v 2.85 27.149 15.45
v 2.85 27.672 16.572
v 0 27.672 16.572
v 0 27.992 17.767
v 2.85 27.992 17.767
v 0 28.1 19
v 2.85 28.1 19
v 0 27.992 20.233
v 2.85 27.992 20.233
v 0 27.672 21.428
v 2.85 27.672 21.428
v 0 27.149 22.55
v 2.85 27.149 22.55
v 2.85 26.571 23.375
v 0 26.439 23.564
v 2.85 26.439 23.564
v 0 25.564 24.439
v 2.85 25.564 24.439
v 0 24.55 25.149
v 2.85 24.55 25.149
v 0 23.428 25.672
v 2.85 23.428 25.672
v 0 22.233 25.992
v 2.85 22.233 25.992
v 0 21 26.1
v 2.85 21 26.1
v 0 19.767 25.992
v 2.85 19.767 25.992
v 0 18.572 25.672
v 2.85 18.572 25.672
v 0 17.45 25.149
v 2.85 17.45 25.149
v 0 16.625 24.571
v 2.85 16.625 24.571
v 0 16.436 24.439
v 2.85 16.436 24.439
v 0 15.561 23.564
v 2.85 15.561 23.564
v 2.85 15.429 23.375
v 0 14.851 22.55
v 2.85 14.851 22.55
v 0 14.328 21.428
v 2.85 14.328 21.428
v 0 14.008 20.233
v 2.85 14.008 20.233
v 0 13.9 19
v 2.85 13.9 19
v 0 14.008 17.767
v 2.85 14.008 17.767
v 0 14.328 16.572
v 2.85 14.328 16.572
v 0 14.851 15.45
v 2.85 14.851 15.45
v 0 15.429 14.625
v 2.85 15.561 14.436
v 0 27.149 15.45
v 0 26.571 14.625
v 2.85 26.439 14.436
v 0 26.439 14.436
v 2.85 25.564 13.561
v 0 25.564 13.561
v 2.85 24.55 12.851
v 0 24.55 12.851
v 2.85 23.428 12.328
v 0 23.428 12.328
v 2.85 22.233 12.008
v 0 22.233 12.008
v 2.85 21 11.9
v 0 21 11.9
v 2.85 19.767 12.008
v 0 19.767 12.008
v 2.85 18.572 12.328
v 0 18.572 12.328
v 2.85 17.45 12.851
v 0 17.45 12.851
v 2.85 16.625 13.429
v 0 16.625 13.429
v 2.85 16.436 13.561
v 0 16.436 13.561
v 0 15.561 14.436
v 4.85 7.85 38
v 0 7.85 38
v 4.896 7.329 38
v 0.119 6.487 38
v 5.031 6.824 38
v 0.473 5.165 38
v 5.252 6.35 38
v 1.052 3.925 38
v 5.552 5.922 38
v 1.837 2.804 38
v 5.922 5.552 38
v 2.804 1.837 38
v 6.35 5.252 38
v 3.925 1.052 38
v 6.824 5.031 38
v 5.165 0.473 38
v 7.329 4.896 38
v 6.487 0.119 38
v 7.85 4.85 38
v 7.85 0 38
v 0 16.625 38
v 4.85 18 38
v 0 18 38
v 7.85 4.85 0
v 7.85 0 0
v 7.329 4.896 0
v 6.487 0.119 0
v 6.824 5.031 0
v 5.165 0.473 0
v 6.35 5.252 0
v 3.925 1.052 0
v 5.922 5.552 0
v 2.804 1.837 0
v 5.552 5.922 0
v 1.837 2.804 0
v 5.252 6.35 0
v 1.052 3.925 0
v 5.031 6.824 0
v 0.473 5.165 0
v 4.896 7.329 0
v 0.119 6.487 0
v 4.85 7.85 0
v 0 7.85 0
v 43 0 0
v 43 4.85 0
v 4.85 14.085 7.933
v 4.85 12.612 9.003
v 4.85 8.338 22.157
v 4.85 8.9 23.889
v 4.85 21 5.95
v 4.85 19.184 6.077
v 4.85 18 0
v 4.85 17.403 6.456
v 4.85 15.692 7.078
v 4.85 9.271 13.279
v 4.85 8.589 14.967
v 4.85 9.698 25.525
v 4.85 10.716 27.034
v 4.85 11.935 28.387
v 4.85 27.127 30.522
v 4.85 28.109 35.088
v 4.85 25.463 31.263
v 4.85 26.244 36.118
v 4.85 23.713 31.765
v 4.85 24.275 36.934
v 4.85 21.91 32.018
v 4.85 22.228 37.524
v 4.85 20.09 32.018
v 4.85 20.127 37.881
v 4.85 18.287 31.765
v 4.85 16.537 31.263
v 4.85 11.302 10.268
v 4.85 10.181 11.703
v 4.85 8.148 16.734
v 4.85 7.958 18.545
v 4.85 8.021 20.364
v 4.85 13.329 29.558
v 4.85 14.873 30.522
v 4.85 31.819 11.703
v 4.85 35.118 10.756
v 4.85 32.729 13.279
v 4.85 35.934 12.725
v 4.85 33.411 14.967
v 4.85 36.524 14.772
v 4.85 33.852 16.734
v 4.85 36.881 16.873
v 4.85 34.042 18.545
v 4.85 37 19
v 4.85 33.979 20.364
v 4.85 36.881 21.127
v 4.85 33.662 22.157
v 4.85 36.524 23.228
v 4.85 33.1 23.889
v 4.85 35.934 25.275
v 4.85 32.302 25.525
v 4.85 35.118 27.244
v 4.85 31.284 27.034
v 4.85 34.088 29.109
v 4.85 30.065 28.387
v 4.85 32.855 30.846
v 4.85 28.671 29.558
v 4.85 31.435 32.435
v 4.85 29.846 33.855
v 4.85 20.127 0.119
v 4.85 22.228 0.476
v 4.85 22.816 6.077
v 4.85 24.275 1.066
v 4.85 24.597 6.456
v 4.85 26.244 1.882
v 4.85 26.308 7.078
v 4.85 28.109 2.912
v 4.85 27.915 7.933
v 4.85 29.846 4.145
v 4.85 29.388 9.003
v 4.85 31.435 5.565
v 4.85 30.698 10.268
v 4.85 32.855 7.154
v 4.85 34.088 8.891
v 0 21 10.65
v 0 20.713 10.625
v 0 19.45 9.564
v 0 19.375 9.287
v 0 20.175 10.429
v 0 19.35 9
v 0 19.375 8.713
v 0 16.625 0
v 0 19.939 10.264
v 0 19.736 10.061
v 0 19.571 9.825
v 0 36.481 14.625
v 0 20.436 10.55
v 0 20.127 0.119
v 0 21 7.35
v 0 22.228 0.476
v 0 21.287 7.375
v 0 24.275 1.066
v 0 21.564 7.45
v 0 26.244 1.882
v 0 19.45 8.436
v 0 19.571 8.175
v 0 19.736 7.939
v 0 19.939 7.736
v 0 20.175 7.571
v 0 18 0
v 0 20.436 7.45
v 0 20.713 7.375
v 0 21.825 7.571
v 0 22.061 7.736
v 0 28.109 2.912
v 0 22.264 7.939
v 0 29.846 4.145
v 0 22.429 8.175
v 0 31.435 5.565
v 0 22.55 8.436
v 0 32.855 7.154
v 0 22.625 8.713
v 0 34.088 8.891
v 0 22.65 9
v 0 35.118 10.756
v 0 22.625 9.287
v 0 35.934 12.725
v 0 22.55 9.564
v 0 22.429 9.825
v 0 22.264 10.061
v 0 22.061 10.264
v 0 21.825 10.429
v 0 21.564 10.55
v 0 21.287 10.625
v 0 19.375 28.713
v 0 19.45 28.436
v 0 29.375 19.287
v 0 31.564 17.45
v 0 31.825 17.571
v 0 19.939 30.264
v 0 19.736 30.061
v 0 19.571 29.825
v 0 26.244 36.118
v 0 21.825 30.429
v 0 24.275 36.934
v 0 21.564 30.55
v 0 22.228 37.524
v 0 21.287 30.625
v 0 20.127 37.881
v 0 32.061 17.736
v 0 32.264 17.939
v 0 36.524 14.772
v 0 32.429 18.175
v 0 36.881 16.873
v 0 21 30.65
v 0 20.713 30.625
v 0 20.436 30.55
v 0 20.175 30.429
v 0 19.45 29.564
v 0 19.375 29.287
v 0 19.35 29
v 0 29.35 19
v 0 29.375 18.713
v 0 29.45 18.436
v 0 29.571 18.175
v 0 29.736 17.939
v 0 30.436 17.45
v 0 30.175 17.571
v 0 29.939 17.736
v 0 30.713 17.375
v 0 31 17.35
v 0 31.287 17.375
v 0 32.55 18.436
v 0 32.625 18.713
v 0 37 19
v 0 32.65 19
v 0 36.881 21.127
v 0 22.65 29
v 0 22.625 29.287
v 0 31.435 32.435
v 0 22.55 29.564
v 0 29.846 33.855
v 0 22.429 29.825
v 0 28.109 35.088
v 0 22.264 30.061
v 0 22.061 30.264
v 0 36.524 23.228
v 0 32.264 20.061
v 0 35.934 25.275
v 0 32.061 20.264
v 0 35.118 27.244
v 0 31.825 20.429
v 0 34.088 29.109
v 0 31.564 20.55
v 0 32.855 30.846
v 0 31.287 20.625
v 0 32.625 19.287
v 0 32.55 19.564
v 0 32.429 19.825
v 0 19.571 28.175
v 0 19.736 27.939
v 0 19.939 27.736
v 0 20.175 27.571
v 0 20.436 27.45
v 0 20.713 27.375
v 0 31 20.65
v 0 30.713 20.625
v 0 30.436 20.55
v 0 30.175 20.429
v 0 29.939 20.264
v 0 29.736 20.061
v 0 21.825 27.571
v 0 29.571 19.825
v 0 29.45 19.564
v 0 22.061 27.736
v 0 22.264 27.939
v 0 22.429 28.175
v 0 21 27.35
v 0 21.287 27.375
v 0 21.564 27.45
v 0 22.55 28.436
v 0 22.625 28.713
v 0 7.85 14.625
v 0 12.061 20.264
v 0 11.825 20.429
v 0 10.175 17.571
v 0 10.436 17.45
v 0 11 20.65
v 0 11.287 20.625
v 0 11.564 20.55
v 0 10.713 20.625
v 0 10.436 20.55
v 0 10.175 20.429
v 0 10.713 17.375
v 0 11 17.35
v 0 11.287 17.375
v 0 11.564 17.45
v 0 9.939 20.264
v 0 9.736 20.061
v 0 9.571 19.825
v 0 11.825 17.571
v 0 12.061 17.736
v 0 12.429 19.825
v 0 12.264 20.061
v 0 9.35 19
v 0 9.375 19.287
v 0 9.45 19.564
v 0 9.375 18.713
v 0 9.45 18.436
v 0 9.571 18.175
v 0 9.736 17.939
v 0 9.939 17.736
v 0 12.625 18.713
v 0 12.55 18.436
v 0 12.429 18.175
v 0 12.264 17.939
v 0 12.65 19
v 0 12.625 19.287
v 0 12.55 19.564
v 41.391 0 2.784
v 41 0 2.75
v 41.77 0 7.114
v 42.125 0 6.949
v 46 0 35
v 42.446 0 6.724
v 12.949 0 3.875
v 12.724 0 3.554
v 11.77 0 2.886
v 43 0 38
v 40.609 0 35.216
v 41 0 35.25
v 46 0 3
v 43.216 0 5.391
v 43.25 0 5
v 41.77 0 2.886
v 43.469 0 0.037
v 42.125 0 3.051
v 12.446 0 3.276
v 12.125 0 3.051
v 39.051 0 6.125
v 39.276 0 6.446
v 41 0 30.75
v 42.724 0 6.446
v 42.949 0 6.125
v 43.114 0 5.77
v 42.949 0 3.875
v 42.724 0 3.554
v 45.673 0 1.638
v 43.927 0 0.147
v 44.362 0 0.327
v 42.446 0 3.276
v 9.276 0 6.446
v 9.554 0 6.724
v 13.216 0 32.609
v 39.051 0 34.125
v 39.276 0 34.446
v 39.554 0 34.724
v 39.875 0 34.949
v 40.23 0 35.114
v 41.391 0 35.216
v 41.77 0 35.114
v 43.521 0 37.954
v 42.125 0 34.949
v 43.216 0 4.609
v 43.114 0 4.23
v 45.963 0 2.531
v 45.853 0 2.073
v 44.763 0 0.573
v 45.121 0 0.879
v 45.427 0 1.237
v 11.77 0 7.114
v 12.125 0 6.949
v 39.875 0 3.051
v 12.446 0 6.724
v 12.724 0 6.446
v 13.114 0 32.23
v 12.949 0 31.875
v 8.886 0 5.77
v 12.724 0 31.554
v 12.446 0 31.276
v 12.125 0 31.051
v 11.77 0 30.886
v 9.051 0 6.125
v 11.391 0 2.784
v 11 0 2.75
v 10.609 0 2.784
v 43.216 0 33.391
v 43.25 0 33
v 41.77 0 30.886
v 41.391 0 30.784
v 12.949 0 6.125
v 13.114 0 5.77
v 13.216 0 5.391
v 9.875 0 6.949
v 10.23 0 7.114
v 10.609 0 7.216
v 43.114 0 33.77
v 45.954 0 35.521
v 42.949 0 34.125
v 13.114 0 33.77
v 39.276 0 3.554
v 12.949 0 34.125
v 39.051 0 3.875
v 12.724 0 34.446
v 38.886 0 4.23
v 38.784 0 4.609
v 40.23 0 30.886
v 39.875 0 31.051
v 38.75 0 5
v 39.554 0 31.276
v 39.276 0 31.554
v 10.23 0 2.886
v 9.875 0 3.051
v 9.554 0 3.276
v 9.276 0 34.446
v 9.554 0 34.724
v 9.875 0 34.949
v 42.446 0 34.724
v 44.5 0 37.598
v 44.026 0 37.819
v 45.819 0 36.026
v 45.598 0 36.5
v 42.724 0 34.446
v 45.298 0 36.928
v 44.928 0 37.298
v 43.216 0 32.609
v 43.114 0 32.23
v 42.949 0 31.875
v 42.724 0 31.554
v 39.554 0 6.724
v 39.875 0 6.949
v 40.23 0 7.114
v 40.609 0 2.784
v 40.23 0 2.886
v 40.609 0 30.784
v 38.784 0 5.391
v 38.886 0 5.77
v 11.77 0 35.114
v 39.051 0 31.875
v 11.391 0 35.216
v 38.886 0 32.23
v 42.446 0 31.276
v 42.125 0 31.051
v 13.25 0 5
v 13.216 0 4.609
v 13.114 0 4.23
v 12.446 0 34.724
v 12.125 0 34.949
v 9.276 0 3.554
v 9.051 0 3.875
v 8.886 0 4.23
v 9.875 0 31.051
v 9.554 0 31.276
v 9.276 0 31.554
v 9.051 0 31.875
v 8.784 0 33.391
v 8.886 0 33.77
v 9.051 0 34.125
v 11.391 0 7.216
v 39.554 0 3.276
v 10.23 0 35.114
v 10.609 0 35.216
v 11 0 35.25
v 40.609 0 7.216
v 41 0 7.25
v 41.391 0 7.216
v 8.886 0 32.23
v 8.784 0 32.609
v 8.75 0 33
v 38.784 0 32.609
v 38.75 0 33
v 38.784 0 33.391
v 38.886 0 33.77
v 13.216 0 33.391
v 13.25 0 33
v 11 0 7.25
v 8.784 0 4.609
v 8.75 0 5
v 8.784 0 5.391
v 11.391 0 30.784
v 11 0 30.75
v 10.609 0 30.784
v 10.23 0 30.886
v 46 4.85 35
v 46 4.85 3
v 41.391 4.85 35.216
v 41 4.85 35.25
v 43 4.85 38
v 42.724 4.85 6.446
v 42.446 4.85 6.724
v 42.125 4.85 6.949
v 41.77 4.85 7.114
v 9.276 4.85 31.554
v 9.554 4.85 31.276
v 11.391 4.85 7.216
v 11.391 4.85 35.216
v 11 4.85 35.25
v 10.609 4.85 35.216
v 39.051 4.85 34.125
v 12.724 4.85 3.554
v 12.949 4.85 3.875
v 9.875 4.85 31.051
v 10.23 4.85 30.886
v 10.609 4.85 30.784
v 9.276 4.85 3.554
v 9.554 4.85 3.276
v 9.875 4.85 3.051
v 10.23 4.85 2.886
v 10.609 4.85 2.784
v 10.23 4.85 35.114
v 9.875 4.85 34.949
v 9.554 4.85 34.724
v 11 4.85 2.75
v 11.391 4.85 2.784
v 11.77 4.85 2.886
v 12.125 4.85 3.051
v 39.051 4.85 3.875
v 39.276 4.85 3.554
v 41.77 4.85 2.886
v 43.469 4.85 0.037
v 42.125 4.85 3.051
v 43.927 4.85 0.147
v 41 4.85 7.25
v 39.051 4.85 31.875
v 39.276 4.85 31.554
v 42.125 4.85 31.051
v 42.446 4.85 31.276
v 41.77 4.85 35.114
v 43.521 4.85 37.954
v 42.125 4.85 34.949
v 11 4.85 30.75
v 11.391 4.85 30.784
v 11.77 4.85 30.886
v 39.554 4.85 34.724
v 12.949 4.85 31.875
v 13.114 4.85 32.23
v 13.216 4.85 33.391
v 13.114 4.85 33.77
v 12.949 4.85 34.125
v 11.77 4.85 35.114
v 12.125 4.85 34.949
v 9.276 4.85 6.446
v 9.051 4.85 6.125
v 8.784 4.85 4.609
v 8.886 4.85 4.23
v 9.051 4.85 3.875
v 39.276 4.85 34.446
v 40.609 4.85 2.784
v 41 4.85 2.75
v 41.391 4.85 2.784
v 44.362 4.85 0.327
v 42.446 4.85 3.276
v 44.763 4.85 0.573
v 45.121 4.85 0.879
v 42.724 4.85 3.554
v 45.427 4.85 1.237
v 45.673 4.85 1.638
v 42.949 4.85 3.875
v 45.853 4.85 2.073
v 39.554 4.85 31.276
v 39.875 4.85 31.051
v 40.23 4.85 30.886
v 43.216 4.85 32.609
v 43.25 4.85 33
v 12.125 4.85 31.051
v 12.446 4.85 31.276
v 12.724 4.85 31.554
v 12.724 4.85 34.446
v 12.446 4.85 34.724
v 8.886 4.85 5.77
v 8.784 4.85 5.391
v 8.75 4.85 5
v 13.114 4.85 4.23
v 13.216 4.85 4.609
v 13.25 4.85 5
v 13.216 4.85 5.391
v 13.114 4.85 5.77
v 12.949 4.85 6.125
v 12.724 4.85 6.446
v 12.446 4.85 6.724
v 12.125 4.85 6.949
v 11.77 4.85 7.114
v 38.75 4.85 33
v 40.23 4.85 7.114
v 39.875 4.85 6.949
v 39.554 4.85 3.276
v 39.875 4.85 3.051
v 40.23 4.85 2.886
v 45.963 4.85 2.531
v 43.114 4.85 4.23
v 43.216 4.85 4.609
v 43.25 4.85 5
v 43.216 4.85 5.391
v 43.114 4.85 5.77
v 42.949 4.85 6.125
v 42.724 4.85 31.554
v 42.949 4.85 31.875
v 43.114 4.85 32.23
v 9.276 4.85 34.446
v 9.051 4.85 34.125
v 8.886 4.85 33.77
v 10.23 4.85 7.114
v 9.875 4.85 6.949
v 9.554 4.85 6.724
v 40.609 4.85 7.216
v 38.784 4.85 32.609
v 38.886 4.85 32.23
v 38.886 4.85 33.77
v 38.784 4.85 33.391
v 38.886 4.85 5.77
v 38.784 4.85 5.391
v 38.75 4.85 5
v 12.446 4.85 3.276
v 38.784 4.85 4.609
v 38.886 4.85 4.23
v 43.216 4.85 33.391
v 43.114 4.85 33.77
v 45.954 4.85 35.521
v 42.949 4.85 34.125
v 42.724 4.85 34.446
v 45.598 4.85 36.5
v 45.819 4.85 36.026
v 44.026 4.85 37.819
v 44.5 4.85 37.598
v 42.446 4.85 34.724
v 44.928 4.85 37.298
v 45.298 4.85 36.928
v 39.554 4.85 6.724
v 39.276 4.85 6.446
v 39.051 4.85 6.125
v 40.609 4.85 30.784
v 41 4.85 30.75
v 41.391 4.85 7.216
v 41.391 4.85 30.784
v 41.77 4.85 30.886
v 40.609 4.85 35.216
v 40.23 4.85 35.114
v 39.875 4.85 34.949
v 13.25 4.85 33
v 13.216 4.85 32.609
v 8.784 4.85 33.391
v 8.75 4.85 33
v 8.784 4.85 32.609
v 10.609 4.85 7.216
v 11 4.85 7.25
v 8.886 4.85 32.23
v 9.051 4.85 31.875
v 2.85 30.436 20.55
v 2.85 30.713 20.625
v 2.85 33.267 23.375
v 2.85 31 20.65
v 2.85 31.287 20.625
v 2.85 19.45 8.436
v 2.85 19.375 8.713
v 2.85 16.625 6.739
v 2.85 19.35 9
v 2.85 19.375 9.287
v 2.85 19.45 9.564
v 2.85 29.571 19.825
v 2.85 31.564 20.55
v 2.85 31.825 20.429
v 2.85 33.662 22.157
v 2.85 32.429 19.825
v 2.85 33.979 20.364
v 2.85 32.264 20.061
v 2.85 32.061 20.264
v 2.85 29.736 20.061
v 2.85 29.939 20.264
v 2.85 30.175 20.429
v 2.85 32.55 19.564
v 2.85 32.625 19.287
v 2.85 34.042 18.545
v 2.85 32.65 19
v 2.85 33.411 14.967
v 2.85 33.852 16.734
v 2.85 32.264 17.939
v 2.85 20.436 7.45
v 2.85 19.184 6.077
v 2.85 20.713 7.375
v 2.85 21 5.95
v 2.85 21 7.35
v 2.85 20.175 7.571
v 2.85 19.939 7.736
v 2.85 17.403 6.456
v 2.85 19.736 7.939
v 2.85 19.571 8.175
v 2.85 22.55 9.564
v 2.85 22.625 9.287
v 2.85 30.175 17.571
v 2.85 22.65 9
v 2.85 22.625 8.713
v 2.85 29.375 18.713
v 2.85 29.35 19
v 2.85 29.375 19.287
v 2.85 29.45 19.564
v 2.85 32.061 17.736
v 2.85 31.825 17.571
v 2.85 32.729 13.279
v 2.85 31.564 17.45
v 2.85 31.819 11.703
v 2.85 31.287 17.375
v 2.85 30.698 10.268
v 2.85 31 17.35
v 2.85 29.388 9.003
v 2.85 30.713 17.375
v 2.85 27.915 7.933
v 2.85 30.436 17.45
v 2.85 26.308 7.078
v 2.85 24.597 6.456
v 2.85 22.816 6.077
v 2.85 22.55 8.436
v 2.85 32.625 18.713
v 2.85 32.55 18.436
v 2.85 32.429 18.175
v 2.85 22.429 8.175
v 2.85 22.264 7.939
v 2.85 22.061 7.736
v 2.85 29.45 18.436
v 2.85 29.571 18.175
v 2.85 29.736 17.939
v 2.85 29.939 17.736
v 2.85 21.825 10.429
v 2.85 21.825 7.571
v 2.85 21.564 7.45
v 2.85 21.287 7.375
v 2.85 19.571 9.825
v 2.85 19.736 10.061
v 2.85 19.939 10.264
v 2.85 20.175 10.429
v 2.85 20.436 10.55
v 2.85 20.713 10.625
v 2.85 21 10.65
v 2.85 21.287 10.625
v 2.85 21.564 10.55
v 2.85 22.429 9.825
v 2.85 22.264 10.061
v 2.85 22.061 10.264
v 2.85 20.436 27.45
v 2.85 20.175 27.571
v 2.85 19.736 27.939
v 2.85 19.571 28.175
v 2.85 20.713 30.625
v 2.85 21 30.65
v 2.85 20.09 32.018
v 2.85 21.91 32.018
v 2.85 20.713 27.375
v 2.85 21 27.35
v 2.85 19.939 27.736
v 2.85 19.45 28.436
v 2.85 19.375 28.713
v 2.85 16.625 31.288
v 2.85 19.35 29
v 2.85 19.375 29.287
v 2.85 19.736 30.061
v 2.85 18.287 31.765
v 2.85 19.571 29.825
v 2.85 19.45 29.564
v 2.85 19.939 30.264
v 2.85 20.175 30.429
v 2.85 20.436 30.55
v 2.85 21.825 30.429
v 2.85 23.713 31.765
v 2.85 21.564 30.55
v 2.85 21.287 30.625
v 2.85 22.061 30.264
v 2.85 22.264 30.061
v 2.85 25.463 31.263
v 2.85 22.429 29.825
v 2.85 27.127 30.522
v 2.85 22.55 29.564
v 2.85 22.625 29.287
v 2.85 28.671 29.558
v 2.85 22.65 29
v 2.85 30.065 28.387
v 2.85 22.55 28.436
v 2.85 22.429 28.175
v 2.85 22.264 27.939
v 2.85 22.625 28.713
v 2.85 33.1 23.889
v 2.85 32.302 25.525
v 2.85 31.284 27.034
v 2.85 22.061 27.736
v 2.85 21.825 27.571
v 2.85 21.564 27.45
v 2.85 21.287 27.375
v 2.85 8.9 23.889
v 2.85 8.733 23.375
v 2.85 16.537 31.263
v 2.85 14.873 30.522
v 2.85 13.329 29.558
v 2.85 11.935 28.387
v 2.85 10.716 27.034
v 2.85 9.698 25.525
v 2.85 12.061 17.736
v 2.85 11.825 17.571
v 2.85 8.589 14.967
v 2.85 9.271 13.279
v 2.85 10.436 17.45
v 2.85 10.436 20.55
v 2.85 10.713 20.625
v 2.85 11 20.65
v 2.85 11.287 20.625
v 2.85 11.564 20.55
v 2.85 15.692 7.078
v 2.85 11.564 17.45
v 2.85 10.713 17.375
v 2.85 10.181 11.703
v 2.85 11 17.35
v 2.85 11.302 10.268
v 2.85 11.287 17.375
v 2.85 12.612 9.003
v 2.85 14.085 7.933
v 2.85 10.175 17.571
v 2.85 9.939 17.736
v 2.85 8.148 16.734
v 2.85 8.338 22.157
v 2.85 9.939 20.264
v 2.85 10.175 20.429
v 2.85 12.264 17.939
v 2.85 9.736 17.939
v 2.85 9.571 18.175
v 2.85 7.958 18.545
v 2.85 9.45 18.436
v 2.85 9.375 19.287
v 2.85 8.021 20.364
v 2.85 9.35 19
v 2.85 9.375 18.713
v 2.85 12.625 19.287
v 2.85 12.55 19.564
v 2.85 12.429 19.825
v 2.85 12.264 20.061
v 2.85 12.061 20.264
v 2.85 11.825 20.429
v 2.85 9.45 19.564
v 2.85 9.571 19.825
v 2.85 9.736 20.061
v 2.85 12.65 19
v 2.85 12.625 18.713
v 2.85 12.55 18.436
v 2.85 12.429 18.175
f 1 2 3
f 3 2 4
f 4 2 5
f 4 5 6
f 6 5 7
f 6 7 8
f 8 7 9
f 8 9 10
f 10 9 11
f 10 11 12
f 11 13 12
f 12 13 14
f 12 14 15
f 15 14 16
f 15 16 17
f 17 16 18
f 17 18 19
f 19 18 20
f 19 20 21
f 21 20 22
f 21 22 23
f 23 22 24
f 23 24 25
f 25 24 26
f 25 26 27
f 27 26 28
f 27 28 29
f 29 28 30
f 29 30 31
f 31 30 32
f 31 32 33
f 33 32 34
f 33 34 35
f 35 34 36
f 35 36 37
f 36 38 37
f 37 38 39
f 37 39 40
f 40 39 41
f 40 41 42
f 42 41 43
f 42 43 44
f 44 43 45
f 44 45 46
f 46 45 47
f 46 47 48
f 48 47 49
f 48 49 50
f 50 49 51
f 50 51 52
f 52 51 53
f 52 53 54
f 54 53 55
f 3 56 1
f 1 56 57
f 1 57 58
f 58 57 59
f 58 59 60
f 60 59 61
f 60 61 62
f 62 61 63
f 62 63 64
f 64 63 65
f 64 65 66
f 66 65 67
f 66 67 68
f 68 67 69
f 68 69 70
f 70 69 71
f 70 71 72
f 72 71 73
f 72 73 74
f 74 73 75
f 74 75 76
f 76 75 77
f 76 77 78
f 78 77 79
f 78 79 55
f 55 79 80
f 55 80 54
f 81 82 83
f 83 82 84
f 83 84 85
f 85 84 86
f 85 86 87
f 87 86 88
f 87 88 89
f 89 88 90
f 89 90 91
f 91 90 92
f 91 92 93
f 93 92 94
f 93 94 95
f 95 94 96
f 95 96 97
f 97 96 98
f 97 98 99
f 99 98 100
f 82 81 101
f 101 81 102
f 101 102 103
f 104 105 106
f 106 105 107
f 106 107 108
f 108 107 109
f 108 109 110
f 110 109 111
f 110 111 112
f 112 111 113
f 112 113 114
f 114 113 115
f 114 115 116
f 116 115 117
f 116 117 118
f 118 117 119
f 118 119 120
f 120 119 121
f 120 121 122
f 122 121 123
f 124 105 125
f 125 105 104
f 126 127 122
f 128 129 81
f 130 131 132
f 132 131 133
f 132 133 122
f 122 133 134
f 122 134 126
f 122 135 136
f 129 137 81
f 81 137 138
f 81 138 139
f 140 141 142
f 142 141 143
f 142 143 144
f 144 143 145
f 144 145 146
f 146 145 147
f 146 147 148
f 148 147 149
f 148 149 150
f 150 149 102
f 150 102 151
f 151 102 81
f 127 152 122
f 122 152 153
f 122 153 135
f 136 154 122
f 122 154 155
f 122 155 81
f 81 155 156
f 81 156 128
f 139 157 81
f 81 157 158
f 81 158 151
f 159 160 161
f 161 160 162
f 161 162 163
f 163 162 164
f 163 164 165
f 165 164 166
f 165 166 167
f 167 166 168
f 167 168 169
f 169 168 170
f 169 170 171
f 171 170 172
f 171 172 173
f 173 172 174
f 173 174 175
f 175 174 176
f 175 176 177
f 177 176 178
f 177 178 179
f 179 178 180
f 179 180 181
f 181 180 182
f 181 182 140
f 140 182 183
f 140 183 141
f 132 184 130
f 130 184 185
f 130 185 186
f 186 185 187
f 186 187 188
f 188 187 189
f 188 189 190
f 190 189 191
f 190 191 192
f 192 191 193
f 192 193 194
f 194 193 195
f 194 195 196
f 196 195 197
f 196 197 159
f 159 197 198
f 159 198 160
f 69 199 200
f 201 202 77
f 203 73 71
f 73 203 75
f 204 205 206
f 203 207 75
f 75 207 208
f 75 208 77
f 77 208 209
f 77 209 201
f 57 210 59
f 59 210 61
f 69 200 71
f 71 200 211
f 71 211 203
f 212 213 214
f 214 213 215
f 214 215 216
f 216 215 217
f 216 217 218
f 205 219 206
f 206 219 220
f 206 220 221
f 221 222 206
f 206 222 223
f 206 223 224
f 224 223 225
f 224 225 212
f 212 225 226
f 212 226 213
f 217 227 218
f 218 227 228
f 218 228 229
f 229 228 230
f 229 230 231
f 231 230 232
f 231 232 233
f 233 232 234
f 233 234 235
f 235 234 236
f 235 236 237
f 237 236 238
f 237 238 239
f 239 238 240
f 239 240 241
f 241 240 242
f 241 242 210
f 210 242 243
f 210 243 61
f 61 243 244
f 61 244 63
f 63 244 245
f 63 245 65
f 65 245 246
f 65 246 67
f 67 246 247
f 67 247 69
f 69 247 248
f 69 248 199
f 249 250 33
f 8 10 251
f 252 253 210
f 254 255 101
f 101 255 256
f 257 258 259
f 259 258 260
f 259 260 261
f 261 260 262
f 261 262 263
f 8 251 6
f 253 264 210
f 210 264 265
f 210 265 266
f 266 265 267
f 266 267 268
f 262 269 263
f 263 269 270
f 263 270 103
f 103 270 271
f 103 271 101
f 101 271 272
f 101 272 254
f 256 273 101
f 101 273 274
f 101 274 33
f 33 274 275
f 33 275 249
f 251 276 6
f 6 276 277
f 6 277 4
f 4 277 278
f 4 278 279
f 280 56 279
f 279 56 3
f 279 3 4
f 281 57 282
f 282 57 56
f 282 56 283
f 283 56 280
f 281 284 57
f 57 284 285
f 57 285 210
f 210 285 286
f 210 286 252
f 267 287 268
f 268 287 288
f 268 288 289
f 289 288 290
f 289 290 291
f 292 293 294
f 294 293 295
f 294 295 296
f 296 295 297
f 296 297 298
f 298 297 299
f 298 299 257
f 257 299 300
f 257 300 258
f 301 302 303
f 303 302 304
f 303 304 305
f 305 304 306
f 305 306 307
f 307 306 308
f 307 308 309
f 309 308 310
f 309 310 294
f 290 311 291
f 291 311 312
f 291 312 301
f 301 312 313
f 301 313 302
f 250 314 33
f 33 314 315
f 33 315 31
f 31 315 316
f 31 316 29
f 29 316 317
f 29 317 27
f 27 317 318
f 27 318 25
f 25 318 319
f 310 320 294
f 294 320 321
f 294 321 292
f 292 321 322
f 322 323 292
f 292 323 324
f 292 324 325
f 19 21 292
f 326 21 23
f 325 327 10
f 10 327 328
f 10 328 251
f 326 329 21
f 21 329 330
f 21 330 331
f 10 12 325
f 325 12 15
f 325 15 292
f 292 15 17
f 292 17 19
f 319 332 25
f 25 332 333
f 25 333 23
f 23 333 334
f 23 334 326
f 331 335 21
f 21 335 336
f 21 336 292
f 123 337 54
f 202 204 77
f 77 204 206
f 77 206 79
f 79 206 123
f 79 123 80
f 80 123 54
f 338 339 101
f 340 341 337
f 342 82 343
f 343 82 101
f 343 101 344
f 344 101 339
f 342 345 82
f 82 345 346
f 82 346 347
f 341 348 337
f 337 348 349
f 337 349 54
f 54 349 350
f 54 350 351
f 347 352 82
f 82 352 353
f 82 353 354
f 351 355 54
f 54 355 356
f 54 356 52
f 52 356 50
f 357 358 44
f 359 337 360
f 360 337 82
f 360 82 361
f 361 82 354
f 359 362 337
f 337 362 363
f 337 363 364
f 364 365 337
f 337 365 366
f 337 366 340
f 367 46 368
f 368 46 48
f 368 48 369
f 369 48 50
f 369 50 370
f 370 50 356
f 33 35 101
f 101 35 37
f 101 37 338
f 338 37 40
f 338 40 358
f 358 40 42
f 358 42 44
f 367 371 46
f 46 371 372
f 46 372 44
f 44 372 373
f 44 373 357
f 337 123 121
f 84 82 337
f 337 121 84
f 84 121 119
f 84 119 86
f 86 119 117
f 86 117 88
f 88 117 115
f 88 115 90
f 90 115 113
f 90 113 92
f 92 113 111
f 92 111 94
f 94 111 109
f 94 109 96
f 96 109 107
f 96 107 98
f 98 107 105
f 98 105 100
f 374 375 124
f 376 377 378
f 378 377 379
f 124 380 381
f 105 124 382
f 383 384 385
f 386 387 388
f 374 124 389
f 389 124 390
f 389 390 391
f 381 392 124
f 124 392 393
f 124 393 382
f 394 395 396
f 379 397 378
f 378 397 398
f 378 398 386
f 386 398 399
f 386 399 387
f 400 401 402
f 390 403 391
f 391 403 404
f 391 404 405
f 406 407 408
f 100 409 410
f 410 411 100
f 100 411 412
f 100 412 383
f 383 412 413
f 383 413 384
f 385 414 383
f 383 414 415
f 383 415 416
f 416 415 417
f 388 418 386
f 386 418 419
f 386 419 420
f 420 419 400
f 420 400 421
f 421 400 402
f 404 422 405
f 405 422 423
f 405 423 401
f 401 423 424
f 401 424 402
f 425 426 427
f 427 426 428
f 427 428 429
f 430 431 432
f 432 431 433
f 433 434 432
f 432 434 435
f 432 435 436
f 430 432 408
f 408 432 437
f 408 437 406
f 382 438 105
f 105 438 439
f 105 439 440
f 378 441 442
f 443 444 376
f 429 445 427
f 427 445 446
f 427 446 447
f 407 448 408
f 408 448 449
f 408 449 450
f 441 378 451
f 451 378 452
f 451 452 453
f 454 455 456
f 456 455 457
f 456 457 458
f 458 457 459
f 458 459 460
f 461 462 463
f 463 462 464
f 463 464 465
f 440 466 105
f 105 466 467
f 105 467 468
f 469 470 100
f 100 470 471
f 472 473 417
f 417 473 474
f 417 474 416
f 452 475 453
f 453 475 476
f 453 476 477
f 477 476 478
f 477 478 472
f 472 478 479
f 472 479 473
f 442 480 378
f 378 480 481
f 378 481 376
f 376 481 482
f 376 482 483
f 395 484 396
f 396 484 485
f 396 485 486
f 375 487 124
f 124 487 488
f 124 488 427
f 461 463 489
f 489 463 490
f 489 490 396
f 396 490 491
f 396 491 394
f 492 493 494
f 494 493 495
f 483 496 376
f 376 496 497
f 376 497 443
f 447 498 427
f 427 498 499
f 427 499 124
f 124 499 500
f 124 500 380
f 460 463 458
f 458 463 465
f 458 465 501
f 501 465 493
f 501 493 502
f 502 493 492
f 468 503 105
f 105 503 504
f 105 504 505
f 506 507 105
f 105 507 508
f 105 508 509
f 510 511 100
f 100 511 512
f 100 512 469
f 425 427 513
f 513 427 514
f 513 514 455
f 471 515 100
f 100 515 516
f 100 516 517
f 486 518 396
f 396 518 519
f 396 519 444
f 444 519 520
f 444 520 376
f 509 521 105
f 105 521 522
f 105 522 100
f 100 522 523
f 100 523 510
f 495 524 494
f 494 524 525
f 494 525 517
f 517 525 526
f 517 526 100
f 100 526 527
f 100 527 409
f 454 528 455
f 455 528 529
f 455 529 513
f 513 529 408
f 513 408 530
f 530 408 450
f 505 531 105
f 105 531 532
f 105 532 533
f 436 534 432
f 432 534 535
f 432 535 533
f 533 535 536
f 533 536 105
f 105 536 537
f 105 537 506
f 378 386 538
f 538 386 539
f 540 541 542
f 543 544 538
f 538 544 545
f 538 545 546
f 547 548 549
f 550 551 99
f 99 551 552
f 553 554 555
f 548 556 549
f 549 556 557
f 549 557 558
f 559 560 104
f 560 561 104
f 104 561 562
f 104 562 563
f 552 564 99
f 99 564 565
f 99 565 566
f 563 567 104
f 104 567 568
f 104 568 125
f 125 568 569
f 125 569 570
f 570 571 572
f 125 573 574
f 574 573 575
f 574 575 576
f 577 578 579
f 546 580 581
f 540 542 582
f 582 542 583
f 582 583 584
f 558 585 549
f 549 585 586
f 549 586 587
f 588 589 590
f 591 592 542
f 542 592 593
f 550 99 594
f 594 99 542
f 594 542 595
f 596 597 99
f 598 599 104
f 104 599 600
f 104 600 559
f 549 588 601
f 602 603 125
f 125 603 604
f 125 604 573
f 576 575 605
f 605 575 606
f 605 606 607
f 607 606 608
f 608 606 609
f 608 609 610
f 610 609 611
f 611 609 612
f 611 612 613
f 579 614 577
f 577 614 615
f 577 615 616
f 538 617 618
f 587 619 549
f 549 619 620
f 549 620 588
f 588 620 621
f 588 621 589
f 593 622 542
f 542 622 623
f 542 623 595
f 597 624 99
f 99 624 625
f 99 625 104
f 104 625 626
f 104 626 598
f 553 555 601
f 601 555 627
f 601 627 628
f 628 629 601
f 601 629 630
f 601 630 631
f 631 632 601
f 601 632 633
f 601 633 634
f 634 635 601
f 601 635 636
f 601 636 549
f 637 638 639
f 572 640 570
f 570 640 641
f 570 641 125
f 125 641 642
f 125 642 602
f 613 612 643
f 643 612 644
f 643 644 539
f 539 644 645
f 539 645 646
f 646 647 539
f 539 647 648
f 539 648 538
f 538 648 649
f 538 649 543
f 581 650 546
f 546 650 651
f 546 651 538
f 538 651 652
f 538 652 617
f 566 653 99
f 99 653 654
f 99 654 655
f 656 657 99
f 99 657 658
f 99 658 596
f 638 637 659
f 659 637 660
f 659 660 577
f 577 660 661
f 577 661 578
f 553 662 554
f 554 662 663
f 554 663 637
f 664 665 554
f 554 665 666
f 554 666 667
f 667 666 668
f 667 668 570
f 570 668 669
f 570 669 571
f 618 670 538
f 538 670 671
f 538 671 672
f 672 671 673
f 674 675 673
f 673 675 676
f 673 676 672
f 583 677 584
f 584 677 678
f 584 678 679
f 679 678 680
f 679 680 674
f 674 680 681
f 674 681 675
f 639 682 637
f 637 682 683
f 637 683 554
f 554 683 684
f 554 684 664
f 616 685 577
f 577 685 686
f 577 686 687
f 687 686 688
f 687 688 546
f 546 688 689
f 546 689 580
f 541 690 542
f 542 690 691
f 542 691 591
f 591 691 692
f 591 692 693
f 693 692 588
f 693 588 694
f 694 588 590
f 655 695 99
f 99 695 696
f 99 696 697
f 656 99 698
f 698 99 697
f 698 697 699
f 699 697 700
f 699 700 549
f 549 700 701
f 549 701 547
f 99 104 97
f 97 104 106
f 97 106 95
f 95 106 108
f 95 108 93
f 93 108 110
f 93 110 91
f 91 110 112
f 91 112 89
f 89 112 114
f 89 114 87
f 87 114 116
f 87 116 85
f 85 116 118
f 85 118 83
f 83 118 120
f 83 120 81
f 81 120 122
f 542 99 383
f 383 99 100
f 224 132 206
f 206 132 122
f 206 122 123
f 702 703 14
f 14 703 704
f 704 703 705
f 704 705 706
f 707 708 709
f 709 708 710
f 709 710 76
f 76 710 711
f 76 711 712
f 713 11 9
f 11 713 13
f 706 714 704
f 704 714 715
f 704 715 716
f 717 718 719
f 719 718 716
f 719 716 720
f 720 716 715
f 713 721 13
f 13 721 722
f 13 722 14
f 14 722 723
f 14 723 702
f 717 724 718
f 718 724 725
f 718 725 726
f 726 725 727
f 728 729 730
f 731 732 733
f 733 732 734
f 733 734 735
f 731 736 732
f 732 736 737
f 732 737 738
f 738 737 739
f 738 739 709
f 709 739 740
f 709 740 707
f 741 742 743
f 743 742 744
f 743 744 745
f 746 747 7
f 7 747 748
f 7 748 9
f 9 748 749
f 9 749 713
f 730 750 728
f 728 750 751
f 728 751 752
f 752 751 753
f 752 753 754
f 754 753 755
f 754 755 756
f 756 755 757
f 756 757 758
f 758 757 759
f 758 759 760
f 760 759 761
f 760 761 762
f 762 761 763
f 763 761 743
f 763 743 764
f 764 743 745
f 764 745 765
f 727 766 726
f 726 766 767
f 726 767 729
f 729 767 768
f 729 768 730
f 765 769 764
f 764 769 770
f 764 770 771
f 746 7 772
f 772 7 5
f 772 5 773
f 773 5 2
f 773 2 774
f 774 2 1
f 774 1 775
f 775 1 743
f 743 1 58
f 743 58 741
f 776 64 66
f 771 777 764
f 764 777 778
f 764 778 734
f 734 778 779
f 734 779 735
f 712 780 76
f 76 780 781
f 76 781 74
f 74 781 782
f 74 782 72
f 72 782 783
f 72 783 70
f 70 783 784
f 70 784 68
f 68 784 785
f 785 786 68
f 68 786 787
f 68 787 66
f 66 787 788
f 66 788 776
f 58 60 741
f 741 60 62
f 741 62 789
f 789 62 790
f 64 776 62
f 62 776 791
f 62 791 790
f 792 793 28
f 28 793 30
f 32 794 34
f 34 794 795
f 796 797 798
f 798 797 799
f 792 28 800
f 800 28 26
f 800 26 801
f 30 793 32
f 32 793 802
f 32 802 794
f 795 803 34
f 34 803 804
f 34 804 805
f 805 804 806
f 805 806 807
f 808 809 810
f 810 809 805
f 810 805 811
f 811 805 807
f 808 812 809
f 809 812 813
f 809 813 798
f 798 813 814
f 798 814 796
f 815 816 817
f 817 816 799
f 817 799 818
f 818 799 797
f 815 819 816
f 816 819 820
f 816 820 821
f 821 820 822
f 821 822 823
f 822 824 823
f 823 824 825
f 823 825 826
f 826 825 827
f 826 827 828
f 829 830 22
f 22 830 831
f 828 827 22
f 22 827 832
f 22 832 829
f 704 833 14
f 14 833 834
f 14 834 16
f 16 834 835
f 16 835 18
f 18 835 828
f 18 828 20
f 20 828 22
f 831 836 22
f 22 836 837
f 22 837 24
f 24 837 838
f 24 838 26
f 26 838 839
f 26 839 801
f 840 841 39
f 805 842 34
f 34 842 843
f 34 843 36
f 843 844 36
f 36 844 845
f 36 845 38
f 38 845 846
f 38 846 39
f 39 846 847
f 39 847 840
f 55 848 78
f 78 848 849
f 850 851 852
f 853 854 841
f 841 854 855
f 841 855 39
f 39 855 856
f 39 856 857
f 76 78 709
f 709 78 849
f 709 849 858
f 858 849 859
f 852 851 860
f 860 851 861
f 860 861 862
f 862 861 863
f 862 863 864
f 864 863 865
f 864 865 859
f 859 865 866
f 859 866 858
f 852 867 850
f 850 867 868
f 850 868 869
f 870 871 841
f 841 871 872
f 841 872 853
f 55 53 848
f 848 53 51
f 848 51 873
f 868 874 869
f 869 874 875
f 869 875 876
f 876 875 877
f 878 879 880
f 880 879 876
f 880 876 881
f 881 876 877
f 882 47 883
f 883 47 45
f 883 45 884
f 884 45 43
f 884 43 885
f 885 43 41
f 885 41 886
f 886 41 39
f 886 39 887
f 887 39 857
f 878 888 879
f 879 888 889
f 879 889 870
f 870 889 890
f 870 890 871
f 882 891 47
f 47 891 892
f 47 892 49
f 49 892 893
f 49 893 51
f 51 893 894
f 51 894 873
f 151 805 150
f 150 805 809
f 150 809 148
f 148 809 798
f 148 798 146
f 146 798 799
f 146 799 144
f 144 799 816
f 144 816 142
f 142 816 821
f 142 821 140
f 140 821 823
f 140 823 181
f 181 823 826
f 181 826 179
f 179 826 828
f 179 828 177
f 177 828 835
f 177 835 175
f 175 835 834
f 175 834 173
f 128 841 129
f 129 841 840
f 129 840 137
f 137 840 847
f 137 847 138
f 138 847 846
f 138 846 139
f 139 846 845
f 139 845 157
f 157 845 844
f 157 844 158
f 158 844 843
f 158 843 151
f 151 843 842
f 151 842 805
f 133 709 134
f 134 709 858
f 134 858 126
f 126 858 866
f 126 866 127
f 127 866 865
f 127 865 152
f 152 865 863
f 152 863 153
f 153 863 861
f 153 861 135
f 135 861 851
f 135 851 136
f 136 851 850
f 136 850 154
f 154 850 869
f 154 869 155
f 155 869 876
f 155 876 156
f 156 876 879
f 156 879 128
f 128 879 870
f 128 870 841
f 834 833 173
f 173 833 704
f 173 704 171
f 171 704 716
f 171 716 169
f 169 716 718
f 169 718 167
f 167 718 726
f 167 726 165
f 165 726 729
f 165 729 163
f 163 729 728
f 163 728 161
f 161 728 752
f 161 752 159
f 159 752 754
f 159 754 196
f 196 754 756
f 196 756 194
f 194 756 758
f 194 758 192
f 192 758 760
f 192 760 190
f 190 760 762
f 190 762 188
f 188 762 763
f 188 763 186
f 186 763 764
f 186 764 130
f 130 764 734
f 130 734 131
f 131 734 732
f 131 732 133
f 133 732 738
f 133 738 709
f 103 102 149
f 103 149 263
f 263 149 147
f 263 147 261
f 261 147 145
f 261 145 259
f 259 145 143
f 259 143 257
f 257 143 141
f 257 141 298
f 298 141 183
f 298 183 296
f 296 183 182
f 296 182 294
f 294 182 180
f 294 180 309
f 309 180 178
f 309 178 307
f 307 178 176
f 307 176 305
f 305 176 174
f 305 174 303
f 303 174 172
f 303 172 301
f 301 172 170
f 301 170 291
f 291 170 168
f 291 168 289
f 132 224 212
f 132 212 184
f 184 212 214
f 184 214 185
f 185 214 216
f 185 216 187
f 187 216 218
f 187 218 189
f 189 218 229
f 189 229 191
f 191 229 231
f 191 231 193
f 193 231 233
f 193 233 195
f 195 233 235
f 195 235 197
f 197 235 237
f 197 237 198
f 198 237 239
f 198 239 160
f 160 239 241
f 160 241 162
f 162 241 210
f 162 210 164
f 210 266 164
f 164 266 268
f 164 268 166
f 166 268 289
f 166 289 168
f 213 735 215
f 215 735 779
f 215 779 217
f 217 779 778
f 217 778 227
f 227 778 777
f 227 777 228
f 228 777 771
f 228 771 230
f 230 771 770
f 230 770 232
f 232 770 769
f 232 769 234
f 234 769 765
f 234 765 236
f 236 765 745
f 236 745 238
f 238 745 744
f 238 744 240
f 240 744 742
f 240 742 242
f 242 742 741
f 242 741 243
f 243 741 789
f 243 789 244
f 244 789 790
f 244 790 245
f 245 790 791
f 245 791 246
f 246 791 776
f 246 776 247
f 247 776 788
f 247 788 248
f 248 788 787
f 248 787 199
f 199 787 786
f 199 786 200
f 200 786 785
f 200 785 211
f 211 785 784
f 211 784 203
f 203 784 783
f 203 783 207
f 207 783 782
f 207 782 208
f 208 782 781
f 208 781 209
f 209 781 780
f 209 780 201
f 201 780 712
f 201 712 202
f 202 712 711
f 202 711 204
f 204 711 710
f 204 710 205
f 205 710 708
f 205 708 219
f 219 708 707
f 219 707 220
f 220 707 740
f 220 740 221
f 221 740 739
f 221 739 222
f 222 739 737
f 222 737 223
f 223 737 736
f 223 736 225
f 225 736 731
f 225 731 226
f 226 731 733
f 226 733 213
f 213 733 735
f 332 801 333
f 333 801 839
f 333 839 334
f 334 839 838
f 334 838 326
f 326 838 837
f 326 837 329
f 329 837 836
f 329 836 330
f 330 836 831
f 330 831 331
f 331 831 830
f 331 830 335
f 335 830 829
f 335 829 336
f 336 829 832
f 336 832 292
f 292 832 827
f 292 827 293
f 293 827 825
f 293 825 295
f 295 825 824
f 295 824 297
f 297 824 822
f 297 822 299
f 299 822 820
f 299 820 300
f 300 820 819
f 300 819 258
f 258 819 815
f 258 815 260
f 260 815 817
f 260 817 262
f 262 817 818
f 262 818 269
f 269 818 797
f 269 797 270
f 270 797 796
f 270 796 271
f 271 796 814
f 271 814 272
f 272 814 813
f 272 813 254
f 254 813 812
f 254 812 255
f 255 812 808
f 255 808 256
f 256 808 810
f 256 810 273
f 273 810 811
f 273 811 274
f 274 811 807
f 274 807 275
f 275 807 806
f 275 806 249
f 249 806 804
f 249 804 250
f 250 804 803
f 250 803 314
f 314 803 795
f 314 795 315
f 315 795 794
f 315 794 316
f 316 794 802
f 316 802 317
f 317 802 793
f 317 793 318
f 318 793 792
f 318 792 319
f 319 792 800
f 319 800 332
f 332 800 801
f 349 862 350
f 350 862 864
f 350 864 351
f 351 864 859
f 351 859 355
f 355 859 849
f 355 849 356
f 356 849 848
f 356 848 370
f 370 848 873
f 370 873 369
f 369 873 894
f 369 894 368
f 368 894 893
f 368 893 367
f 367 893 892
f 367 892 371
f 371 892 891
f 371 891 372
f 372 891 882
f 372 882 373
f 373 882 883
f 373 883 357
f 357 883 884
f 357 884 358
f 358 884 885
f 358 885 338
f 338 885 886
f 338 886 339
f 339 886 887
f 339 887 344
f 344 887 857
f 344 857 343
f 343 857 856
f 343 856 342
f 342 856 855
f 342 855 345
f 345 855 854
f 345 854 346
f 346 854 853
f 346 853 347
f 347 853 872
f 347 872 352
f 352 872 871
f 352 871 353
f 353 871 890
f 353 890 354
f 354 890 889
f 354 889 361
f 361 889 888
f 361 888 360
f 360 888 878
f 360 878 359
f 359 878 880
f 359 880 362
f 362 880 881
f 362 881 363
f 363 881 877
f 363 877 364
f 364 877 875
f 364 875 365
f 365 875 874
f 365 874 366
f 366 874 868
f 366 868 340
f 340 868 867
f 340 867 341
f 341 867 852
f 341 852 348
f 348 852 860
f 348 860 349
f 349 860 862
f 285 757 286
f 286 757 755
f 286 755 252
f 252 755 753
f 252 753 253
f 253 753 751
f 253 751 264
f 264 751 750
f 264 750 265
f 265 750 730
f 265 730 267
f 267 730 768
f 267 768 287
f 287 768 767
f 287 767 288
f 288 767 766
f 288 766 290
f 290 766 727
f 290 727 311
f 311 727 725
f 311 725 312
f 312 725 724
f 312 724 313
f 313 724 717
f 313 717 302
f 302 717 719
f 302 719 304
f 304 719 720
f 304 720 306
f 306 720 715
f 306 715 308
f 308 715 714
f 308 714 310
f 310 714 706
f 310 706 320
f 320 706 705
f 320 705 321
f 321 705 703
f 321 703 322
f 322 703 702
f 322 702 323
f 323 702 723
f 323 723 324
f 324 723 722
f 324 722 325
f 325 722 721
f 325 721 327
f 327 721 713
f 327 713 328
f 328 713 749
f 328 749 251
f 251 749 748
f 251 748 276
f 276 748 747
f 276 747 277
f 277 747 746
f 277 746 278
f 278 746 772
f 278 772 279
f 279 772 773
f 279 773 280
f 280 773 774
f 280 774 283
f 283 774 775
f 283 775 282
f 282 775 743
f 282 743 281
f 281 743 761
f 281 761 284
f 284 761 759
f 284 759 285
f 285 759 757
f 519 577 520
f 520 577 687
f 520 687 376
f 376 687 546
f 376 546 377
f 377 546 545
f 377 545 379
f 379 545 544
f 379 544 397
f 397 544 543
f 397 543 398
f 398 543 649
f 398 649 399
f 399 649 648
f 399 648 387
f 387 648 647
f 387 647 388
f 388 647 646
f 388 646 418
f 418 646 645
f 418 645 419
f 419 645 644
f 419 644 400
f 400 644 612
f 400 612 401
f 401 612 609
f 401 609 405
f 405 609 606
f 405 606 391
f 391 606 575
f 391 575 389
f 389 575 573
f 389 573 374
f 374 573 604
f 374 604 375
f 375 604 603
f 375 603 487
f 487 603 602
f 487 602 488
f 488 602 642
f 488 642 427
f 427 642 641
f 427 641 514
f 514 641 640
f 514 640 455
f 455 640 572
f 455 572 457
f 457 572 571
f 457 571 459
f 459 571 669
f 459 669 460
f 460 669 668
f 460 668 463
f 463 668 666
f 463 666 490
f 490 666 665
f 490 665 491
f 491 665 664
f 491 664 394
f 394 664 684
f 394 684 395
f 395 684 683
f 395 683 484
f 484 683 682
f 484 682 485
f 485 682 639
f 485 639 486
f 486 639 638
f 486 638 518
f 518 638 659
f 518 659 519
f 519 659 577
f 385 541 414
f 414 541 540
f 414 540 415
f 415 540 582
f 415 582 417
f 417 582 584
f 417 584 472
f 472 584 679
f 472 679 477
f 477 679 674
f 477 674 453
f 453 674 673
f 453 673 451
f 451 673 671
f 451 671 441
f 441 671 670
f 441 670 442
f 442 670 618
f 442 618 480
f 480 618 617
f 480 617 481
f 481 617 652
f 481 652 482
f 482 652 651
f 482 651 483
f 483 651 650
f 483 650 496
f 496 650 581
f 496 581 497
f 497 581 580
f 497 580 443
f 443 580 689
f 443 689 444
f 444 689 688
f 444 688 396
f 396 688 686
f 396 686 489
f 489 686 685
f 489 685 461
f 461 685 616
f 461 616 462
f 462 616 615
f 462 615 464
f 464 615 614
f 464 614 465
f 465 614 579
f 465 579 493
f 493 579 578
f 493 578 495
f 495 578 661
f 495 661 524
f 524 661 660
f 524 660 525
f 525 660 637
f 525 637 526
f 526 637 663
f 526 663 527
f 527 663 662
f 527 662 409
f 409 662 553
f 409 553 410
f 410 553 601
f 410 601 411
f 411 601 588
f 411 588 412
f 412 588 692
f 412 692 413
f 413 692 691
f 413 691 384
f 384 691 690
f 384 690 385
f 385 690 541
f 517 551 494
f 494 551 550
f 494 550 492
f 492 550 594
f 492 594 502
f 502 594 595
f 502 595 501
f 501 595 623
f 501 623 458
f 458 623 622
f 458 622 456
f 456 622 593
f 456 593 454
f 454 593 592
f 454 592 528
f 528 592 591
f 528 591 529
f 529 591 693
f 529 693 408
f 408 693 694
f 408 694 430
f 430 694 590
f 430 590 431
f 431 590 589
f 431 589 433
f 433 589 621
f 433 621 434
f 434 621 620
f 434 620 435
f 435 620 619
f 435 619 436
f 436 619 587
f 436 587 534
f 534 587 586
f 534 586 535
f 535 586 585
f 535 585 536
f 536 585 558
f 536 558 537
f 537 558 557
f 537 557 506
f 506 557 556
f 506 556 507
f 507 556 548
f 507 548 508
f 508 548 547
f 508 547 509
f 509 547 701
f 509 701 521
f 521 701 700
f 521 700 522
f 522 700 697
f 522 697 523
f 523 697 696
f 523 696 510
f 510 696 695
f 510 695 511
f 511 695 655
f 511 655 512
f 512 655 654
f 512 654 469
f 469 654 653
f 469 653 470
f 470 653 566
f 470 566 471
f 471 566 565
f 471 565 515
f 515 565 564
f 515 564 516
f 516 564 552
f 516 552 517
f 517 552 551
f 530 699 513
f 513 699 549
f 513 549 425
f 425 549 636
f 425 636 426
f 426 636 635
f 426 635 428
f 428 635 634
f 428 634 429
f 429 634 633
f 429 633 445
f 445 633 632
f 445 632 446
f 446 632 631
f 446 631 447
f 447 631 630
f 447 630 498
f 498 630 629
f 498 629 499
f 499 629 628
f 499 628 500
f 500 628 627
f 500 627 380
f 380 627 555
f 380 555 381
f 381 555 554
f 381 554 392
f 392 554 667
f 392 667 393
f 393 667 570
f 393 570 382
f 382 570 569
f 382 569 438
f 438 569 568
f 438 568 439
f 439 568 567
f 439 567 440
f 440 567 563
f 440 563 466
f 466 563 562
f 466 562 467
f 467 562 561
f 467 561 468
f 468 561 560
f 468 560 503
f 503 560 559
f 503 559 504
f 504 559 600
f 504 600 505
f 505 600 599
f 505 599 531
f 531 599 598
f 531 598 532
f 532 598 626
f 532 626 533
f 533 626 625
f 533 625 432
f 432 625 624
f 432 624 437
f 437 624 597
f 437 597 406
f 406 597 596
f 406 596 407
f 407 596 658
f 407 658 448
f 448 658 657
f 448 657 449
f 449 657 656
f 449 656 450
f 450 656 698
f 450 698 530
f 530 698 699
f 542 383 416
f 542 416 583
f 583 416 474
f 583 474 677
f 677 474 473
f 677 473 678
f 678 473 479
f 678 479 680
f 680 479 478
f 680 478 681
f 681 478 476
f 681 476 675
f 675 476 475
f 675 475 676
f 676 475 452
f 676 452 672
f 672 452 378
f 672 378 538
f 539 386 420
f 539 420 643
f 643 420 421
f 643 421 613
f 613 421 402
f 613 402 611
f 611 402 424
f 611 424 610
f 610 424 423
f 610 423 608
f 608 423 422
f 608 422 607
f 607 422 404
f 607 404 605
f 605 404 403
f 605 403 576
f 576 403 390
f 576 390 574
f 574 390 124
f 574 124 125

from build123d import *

# Parameters (mm, degrees)
T_LE_DE_BASE_PLI_E1_DEPTH    = 38
ENL_V_MAT_EXTRU_1_DEPTH      = 68.129147917
ENL_V_MAT_EXTRU_1_DEPTH_BACK = 68.129147917
ESQUISSE6_R                  = 7.1
ESQUISSE7_R                  = 13.05
ENL_V_MAT_EXTRU_2_DEPTH      = 2
CONG_1_R                     = 19
ENL_V_MAT_EXTRU_3_DEPTH      = 69.373404917
ENL_V_MAT_EXTRU_3_DEPTH_BACK = 69.373404917
ESQUISSE8_R                  = 1.65
ENL_V_MAT_EXTRU_4_DEPTH      = 68.77626797
ENL_V_MAT_EXTRU_4_DEPTH_BACK = 68.77626797
ESQUISSE9_R                  = 2.25
CONG_2_R                     = 3


# Read off the part's stored shape, not the designer's step: Tôle de base pliée1
with BuildPart() as part:
    # Tôle de base pliée1 outline → Tôle de base pliée1 (new body)
    with BuildSketch(Plane.XY):
        with BuildLine():
            Line((4.85, 7.85), (4.85, 37))
            Line((4.85, 37), (0, 37))
            Line((0, 37), (0, 7.85))
            ThreePointArc((0, 7.85), (2.299211768, 2.299211768), (7.85, 0))
            Line((7.85, 0), (46, 0))
            Line((46, 0), (46, 4.85))
            Line((46, 4.85), (7.85, 4.85))
            ThreePointArc((7.85, 4.85), (5.728679656, 5.728679656), (4.85, 7.85))
        make_face()
    extrude(amount=T_LE_DE_BASE_PLI_E1_DEPTH)

    # Esquisse6 → Enlèv. mat.-Extru.1 (cut, two sides: drawn at the far end of the back side and taken through both)
    with BuildSketch(Plane(origin=(4.85, 0, 0), x_dir=(0, 0, -1), z_dir=(1, 0, 0)).offset(-ENL_V_MAT_EXTRU_1_DEPTH_BACK)):
        with Locations((-19, 21)):
            Circle(ESQUISSE6_R)
    extrude(amount=ENL_V_MAT_EXTRU_1_DEPTH + ENL_V_MAT_EXTRU_1_DEPTH_BACK, mode=Mode.SUBTRACT)

    # Esquisse7 → Enlèv. mat.-Extru.2 (cut)
    with BuildSketch(Plane(origin=(4.85, 0, 0), x_dir=(0, 0, -1), z_dir=(1, 0, 0))):
        with Locations((-19, 21)):
            Circle(ESQUISSE7_R)
    extrude(amount=-ENL_V_MAT_EXTRU_2_DEPTH, mode=Mode.SUBTRACT)

    # Congé1
    cong_1_edges = [part.edges().sort_by_distance(p)[0] for p in [
        (2.425, 37, 0),
        (2.425, 37, 38),
    ]]
    fillet(cong_1_edges, radius=CONG_1_R - 0.0001)  # a hair under: the kernel refuses the full size

    # Esquisse8 → Enlèv. mat.-Extru.3 (cut, two sides: drawn at the far end of the back side and taken through both)
    with BuildSketch(Plane(origin=(2.85, 0, 0), x_dir=(0, 0, -1), z_dir=(1, 0, 0)).offset(-ENL_V_MAT_EXTRU_3_DEPTH_BACK)):
        with Locations((-9, 21)):
            Circle(ESQUISSE8_R)
        with Locations((-19, 11)):
            Circle(ESQUISSE8_R)
        with Locations((-29, 21)):
            Circle(ESQUISSE8_R)
        with Locations((-19, 31)):
            Circle(ESQUISSE8_R)
    extrude(amount=ENL_V_MAT_EXTRU_3_DEPTH + ENL_V_MAT_EXTRU_3_DEPTH_BACK, mode=Mode.SUBTRACT)

    # Esquisse9 → Enlèv. mat.-Extru.4 (cut, two sides: drawn at the far end of the back side and taken through both)
    with BuildSketch(Plane(origin=(0, 4.85, 0), x_dir=(1, 0, 0), z_dir=(0, 1, 0)).offset(-ENL_V_MAT_EXTRU_4_DEPTH_BACK)):
        with Locations(Location((41, -5, 0), (0, 0, 270))):
            Circle(ESQUISSE9_R)
        with Locations(Location((11, -5, 0), (0, 0, 90))):
            Circle(ESQUISSE9_R)
        with Locations(Location((11, -33, 0), (0, 0, 270))):
            Circle(ESQUISSE9_R)
        with Locations(Location((41, -33, 0), (0, 0, 90))):
            Circle(ESQUISSE9_R)
    extrude(amount=ENL_V_MAT_EXTRU_4_DEPTH + ENL_V_MAT_EXTRU_4_DEPTH_BACK, mode=Mode.SUBTRACT)

    # Congé2
    cong_2_edges = [part.edges().sort_by_distance(p)[0] for p in [
        (46, 2.425, 38),
        (46, 2.425, 0),
    ]]
    fillet(cong_2_edges, radius=CONG_2_R)


solid = part.part
